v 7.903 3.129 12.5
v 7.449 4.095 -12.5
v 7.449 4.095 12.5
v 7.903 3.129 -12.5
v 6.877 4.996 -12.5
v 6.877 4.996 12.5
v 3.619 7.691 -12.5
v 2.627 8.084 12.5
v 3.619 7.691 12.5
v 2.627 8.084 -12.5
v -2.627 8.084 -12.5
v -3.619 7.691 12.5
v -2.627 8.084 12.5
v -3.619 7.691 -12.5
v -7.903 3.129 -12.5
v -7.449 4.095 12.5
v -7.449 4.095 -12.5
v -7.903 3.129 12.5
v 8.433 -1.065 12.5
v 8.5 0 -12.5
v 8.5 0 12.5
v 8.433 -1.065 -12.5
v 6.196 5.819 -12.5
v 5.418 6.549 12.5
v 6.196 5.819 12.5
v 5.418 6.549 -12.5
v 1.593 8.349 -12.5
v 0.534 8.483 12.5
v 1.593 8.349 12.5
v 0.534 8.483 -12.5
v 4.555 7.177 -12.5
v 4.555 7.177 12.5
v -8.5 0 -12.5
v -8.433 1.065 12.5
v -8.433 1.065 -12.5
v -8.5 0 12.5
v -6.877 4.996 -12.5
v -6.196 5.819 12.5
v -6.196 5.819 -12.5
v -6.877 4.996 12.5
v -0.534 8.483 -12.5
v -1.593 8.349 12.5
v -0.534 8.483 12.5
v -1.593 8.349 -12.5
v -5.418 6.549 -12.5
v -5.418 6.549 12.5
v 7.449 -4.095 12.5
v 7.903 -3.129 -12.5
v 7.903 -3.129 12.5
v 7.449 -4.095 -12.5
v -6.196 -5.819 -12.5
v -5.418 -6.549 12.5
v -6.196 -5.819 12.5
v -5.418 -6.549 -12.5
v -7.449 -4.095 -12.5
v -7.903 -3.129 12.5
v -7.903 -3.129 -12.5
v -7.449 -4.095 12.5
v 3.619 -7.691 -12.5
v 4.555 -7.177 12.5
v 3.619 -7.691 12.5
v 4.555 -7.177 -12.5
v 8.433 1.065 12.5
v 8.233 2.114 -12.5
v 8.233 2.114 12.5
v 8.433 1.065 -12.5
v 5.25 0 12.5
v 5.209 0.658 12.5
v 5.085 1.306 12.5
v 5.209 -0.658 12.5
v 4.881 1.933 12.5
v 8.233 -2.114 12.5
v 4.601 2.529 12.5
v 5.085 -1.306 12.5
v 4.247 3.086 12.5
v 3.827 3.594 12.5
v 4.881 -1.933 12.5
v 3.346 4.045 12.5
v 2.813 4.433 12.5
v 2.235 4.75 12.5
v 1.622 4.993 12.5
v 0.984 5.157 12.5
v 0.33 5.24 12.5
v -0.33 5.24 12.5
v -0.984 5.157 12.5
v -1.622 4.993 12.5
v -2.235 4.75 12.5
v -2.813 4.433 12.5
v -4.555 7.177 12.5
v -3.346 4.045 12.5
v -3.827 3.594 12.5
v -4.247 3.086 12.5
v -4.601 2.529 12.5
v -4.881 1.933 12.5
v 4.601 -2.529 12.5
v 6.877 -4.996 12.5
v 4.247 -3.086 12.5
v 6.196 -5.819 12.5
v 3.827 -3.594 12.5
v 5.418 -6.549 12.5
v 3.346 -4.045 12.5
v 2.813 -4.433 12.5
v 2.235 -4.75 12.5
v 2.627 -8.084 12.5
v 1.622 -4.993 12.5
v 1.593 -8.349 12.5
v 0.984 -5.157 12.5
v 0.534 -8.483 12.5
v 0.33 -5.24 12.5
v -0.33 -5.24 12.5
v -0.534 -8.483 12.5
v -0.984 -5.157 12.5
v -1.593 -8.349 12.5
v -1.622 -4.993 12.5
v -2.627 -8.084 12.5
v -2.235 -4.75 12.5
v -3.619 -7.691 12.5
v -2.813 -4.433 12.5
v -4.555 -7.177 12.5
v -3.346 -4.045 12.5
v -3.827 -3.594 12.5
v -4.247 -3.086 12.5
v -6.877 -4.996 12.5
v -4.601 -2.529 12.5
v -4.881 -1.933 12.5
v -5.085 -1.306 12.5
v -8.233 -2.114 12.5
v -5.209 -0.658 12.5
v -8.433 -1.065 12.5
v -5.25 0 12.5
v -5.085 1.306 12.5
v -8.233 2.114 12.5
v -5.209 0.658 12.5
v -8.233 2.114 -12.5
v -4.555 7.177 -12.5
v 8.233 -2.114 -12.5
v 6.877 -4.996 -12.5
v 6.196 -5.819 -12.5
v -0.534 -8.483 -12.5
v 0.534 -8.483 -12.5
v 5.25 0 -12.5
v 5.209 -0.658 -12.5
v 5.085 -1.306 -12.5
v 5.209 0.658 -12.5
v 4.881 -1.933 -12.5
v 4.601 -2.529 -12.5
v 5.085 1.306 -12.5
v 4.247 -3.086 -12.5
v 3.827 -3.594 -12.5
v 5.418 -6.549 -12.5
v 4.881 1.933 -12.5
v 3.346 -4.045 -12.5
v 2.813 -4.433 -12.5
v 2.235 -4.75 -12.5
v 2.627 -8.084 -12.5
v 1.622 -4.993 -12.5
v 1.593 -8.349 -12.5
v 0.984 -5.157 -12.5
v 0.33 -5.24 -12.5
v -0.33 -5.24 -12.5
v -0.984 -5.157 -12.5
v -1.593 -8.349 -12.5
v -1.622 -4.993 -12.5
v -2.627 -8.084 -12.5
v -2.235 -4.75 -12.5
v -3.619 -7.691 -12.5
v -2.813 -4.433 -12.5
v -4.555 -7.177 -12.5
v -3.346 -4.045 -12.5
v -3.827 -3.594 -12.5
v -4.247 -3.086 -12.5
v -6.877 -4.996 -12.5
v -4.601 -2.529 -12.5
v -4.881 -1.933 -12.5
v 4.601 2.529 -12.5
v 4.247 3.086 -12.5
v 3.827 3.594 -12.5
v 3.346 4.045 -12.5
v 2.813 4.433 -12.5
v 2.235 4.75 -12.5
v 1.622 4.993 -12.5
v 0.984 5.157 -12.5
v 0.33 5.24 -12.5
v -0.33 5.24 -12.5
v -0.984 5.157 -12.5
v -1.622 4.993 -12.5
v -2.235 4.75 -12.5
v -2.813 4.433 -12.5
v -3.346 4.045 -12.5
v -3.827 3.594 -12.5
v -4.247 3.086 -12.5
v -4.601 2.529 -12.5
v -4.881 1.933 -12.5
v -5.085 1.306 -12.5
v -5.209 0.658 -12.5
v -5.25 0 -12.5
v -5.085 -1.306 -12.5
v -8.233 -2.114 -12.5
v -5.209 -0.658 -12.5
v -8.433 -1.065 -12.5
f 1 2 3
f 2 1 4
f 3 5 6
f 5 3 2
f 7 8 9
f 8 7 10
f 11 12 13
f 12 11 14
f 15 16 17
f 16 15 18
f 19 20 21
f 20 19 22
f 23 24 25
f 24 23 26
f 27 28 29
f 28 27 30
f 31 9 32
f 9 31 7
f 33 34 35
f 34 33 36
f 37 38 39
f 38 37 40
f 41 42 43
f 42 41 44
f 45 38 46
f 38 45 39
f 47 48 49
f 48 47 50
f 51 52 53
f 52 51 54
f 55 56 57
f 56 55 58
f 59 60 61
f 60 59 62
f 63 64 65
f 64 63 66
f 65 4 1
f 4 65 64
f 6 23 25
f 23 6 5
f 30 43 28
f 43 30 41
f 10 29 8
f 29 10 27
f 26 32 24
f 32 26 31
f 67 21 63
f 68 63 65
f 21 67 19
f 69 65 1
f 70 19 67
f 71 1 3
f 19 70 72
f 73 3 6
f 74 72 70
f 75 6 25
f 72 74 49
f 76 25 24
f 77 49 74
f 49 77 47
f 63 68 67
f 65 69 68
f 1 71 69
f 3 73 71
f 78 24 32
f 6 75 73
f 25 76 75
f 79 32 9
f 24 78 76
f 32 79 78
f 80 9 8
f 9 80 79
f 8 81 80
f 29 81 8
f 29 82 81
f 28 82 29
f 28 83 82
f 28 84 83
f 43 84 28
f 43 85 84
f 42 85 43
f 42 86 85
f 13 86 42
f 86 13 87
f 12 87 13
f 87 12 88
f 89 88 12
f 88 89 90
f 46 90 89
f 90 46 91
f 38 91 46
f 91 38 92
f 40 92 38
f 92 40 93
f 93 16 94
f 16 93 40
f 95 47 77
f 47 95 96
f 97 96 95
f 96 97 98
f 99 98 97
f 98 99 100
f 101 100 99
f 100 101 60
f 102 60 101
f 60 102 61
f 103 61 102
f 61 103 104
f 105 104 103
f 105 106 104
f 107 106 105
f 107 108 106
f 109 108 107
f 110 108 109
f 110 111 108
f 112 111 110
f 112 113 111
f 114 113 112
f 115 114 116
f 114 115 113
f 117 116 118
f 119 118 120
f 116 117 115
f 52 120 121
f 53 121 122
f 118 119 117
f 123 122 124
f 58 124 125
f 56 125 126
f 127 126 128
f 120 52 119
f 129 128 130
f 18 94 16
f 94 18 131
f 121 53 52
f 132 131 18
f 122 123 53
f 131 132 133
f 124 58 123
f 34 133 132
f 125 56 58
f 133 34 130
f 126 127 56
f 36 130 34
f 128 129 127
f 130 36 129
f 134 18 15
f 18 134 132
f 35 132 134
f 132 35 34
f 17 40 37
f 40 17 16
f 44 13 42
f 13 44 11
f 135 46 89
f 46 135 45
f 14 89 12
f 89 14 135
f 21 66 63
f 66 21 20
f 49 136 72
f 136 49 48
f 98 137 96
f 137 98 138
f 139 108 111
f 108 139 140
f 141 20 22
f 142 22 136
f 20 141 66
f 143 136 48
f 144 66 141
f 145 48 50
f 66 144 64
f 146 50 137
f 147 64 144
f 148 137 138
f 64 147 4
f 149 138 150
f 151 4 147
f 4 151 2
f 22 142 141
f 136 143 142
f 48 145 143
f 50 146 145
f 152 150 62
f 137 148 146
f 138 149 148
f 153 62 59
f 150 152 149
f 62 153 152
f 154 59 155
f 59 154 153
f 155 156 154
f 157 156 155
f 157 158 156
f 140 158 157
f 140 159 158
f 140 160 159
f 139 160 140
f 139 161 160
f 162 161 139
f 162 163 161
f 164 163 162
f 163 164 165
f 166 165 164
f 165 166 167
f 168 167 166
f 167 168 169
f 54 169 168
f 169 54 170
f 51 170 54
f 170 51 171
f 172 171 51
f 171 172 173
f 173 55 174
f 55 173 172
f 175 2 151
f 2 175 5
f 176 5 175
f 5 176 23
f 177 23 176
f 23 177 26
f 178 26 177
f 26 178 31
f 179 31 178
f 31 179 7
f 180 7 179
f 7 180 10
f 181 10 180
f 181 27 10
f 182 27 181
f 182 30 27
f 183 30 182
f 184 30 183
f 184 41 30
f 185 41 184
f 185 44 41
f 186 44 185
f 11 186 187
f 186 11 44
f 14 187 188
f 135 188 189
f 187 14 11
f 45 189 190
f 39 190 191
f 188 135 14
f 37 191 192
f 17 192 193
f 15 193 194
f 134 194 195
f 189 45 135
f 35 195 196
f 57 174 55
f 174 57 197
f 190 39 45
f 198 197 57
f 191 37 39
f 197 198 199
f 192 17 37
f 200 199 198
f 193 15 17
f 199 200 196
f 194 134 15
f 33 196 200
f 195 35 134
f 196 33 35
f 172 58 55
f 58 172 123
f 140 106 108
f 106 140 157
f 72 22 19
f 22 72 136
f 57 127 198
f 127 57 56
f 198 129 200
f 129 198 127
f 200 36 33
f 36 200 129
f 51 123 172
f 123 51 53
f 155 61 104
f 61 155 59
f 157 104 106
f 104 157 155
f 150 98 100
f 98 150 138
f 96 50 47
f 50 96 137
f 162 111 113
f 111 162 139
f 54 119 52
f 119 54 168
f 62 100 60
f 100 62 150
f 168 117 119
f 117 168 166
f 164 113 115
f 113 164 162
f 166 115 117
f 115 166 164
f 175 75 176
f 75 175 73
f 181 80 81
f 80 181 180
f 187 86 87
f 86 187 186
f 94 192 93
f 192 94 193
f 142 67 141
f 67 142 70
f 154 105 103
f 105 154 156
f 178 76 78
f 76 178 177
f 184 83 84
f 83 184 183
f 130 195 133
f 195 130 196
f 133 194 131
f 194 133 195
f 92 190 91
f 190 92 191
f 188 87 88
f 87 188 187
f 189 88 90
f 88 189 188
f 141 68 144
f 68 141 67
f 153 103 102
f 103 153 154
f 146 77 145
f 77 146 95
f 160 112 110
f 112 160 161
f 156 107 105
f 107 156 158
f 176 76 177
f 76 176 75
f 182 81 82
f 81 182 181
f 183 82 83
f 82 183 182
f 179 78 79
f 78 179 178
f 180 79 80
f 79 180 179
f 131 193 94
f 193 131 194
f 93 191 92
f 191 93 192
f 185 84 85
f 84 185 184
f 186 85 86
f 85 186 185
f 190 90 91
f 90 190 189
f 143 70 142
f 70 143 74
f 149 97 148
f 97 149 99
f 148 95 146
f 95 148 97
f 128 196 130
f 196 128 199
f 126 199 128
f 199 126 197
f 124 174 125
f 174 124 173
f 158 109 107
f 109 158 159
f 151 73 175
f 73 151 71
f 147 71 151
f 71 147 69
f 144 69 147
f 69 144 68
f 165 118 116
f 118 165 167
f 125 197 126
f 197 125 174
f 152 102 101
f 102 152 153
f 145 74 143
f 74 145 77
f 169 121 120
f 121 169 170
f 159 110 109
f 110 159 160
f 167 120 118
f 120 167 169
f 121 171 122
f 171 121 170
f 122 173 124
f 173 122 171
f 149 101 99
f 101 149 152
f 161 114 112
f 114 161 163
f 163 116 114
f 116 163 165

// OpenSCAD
$fn = 50;


difference() {
	union() {
		translate(v = [0, 0, -12.5000000000]) {
			cylinder(h = 25, r = 8.5000000000);
		}
	}
	union() {
		translate(v = [0, 0, -100.0000000000]) {
			cylinder(h = 200, r = 5.2500000000);
		}
	}
}
